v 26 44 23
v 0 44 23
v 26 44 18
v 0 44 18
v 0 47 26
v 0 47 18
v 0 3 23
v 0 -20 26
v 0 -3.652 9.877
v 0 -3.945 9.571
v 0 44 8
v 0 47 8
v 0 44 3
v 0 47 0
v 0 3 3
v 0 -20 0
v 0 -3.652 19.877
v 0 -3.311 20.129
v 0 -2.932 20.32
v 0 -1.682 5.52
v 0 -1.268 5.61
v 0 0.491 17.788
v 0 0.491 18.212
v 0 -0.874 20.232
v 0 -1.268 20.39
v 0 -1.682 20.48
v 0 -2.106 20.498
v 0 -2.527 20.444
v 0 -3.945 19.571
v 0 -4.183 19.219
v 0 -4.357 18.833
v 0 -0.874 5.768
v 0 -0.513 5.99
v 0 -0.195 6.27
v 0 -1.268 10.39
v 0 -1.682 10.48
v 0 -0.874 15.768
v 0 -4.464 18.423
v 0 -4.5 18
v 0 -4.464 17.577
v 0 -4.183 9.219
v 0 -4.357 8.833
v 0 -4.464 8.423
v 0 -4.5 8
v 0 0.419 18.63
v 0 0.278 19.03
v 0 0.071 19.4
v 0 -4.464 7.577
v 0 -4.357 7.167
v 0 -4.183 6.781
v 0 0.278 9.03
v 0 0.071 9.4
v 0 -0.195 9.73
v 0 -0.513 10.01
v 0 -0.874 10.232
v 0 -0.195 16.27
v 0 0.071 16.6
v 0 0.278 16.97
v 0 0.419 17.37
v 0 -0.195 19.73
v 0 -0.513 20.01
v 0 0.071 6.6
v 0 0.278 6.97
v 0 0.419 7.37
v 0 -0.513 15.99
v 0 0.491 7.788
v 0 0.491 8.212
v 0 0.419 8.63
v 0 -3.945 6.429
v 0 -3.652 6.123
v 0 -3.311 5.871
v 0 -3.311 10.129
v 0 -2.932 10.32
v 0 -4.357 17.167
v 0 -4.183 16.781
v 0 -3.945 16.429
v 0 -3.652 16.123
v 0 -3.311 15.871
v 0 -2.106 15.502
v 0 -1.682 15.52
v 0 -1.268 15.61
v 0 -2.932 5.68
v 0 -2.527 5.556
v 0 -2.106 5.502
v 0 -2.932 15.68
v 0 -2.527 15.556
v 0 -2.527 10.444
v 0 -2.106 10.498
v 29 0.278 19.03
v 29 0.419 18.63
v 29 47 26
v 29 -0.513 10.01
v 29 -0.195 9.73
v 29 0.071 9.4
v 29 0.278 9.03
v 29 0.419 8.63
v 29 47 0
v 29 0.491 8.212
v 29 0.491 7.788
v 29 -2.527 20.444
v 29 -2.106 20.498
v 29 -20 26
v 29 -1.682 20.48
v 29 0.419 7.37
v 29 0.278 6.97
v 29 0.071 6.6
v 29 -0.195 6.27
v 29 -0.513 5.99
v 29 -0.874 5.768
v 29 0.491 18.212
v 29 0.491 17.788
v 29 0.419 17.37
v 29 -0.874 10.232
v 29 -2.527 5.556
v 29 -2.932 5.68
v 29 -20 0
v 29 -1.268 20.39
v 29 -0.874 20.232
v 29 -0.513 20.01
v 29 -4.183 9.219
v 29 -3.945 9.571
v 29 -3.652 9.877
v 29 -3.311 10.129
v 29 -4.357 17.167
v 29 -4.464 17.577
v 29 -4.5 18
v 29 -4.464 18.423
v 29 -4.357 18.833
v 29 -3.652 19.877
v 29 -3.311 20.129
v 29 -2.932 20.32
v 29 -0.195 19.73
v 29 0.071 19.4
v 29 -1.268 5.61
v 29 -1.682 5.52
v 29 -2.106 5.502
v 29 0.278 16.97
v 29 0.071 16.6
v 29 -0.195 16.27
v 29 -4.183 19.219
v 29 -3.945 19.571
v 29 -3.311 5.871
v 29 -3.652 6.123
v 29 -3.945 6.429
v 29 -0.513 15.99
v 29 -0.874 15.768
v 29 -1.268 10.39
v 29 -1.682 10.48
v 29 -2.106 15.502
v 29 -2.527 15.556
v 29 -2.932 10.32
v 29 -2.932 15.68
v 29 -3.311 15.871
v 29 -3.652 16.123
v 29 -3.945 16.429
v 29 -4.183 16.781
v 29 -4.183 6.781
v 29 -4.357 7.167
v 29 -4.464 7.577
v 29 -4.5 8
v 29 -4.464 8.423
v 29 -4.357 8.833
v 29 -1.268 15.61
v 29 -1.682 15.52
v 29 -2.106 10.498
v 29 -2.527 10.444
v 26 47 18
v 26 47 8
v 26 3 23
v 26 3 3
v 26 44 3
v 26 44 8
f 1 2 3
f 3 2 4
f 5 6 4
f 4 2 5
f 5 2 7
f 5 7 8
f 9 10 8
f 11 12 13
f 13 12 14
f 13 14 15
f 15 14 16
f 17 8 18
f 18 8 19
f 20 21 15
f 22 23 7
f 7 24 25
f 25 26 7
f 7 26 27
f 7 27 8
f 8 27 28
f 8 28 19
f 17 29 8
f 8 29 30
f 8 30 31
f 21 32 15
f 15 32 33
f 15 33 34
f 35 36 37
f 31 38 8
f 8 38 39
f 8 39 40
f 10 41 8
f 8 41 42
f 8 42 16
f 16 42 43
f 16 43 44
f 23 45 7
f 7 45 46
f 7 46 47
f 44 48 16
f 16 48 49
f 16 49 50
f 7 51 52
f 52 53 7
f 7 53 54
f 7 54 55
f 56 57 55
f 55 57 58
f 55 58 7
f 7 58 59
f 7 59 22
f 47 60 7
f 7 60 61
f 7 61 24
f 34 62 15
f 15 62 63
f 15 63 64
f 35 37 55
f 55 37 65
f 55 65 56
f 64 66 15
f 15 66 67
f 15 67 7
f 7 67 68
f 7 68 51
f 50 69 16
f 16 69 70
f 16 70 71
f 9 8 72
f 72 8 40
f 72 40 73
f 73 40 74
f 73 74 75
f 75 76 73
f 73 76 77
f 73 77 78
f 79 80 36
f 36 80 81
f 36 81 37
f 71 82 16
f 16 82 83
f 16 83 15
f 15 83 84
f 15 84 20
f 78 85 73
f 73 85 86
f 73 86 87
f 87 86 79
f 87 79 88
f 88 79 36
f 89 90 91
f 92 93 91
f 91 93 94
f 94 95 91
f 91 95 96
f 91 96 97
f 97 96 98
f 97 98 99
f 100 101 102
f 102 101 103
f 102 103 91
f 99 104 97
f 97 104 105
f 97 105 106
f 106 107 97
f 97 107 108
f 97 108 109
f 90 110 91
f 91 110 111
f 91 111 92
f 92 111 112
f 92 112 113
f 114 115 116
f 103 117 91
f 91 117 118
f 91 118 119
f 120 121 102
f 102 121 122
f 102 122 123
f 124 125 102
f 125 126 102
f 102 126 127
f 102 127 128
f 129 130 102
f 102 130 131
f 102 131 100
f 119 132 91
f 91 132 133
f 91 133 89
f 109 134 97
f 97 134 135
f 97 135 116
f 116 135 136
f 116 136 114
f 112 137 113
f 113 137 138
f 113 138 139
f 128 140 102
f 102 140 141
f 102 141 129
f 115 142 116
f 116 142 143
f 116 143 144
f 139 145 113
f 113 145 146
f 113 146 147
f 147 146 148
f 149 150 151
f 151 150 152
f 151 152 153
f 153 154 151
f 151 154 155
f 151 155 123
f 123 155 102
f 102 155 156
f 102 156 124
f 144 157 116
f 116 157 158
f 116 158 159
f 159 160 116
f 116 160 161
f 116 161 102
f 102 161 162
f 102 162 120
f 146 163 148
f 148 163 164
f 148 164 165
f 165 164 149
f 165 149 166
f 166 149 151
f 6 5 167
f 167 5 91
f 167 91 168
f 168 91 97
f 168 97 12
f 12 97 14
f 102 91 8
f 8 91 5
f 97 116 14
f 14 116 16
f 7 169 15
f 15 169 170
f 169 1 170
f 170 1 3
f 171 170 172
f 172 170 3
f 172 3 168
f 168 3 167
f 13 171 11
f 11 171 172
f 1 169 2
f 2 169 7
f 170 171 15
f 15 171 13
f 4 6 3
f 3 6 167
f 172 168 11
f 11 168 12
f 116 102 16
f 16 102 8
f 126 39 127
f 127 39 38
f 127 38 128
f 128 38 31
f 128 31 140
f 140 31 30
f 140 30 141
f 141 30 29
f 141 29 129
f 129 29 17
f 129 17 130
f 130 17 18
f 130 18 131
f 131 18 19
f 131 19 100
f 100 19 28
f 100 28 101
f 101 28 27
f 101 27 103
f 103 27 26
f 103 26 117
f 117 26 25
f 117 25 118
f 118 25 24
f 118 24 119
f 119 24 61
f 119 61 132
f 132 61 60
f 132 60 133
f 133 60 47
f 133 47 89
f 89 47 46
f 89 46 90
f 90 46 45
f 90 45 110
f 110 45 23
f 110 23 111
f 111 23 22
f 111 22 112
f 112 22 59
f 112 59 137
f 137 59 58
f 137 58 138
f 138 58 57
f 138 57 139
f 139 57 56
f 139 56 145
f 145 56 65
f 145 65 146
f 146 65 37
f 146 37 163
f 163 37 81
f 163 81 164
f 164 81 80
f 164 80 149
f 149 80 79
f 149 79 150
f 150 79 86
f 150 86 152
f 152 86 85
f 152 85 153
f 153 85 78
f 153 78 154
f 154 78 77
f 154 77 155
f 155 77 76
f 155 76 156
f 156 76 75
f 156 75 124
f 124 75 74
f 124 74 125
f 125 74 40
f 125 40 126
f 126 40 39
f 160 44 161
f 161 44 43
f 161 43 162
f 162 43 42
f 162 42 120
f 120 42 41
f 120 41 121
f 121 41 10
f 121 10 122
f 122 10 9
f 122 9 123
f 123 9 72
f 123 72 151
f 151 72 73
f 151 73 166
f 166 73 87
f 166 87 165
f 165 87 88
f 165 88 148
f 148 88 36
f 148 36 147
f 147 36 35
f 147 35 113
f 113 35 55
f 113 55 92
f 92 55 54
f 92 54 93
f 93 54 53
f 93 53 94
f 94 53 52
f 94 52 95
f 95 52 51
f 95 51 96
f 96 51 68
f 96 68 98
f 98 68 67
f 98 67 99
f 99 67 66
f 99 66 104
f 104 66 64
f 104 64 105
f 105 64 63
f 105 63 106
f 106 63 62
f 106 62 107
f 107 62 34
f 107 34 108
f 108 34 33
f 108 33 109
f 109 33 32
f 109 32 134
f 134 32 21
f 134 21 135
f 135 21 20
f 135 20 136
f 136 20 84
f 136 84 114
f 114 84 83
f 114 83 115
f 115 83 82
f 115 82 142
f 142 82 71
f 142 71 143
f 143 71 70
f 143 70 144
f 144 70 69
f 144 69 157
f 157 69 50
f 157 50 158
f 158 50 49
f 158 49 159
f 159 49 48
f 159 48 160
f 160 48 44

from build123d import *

# Parameters (mm, degrees)
SKETCH1_W           = 29
SKETCH1_H           = 47
BOSS_EXTRUDE1_DEPTH = 26
SHELL1_T            = -3
SKETCH2_W           = 10
SKETCH2_H           = 8.23076923
CUT_EXTRUDE1_DEPTH  = 26
SKETCH3_W           = 29
SKETCH3_H           = 26
BOSS_EXTRUDE2_DEPTH = 20
SKETCH4_R           = 2.5
CUT_EXTRUDE2_DEPTH  = 62.040969848


with BuildPart() as part:
    # Sketch1 → Boss-Extrude1 (new body)
    with BuildSketch(Plane.XY):
        with Locations((14.5, 23.5)):
            Rectangle(SKETCH1_W, SKETCH1_H)
    extrude(amount=BOSS_EXTRUDE1_DEPTH)

    # Shell1
    shell1_openings = [part.faces().sort_by_distance(p)[0] for p in [
        (0, 23.5, 13),
    ]]
    offset(amount=SHELL1_T, openings=shell1_openings, kind=Kind.INTERSECTION)

    # Sketch2 → Cut-Extrude1 (cut)
    with BuildSketch(Plane.ZY):
        with Locations((13, 44)):
            Rectangle(SKETCH2_W, SKETCH2_H)
    extrude(amount=-CUT_EXTRUDE1_DEPTH, mode=Mode.SUBTRACT)

    # Sketch3 → Boss-Extrude2 (add)
    with BuildSketch(Plane.XZ):
        with Locations((14.5, 13)):
            Rectangle(SKETCH3_W, SKETCH3_H)
    extrude(amount=BOSS_EXTRUDE2_DEPTH)

    # Sketch4 → Cut-Extrude2 (cut, through all)
    with BuildSketch(Plane.ZY):
        with Locations(Location((8, -2, 0), (0, 0, 270))):
            Circle(SKETCH4_R)
        with Locations(Location((18, -2, 0), (0, 0, 270))):
            Circle(SKETCH4_R)
    extrude(amount=-CUT_EXTRUDE2_DEPTH, mode=Mode.SUBTRACT)


solid = part.part
